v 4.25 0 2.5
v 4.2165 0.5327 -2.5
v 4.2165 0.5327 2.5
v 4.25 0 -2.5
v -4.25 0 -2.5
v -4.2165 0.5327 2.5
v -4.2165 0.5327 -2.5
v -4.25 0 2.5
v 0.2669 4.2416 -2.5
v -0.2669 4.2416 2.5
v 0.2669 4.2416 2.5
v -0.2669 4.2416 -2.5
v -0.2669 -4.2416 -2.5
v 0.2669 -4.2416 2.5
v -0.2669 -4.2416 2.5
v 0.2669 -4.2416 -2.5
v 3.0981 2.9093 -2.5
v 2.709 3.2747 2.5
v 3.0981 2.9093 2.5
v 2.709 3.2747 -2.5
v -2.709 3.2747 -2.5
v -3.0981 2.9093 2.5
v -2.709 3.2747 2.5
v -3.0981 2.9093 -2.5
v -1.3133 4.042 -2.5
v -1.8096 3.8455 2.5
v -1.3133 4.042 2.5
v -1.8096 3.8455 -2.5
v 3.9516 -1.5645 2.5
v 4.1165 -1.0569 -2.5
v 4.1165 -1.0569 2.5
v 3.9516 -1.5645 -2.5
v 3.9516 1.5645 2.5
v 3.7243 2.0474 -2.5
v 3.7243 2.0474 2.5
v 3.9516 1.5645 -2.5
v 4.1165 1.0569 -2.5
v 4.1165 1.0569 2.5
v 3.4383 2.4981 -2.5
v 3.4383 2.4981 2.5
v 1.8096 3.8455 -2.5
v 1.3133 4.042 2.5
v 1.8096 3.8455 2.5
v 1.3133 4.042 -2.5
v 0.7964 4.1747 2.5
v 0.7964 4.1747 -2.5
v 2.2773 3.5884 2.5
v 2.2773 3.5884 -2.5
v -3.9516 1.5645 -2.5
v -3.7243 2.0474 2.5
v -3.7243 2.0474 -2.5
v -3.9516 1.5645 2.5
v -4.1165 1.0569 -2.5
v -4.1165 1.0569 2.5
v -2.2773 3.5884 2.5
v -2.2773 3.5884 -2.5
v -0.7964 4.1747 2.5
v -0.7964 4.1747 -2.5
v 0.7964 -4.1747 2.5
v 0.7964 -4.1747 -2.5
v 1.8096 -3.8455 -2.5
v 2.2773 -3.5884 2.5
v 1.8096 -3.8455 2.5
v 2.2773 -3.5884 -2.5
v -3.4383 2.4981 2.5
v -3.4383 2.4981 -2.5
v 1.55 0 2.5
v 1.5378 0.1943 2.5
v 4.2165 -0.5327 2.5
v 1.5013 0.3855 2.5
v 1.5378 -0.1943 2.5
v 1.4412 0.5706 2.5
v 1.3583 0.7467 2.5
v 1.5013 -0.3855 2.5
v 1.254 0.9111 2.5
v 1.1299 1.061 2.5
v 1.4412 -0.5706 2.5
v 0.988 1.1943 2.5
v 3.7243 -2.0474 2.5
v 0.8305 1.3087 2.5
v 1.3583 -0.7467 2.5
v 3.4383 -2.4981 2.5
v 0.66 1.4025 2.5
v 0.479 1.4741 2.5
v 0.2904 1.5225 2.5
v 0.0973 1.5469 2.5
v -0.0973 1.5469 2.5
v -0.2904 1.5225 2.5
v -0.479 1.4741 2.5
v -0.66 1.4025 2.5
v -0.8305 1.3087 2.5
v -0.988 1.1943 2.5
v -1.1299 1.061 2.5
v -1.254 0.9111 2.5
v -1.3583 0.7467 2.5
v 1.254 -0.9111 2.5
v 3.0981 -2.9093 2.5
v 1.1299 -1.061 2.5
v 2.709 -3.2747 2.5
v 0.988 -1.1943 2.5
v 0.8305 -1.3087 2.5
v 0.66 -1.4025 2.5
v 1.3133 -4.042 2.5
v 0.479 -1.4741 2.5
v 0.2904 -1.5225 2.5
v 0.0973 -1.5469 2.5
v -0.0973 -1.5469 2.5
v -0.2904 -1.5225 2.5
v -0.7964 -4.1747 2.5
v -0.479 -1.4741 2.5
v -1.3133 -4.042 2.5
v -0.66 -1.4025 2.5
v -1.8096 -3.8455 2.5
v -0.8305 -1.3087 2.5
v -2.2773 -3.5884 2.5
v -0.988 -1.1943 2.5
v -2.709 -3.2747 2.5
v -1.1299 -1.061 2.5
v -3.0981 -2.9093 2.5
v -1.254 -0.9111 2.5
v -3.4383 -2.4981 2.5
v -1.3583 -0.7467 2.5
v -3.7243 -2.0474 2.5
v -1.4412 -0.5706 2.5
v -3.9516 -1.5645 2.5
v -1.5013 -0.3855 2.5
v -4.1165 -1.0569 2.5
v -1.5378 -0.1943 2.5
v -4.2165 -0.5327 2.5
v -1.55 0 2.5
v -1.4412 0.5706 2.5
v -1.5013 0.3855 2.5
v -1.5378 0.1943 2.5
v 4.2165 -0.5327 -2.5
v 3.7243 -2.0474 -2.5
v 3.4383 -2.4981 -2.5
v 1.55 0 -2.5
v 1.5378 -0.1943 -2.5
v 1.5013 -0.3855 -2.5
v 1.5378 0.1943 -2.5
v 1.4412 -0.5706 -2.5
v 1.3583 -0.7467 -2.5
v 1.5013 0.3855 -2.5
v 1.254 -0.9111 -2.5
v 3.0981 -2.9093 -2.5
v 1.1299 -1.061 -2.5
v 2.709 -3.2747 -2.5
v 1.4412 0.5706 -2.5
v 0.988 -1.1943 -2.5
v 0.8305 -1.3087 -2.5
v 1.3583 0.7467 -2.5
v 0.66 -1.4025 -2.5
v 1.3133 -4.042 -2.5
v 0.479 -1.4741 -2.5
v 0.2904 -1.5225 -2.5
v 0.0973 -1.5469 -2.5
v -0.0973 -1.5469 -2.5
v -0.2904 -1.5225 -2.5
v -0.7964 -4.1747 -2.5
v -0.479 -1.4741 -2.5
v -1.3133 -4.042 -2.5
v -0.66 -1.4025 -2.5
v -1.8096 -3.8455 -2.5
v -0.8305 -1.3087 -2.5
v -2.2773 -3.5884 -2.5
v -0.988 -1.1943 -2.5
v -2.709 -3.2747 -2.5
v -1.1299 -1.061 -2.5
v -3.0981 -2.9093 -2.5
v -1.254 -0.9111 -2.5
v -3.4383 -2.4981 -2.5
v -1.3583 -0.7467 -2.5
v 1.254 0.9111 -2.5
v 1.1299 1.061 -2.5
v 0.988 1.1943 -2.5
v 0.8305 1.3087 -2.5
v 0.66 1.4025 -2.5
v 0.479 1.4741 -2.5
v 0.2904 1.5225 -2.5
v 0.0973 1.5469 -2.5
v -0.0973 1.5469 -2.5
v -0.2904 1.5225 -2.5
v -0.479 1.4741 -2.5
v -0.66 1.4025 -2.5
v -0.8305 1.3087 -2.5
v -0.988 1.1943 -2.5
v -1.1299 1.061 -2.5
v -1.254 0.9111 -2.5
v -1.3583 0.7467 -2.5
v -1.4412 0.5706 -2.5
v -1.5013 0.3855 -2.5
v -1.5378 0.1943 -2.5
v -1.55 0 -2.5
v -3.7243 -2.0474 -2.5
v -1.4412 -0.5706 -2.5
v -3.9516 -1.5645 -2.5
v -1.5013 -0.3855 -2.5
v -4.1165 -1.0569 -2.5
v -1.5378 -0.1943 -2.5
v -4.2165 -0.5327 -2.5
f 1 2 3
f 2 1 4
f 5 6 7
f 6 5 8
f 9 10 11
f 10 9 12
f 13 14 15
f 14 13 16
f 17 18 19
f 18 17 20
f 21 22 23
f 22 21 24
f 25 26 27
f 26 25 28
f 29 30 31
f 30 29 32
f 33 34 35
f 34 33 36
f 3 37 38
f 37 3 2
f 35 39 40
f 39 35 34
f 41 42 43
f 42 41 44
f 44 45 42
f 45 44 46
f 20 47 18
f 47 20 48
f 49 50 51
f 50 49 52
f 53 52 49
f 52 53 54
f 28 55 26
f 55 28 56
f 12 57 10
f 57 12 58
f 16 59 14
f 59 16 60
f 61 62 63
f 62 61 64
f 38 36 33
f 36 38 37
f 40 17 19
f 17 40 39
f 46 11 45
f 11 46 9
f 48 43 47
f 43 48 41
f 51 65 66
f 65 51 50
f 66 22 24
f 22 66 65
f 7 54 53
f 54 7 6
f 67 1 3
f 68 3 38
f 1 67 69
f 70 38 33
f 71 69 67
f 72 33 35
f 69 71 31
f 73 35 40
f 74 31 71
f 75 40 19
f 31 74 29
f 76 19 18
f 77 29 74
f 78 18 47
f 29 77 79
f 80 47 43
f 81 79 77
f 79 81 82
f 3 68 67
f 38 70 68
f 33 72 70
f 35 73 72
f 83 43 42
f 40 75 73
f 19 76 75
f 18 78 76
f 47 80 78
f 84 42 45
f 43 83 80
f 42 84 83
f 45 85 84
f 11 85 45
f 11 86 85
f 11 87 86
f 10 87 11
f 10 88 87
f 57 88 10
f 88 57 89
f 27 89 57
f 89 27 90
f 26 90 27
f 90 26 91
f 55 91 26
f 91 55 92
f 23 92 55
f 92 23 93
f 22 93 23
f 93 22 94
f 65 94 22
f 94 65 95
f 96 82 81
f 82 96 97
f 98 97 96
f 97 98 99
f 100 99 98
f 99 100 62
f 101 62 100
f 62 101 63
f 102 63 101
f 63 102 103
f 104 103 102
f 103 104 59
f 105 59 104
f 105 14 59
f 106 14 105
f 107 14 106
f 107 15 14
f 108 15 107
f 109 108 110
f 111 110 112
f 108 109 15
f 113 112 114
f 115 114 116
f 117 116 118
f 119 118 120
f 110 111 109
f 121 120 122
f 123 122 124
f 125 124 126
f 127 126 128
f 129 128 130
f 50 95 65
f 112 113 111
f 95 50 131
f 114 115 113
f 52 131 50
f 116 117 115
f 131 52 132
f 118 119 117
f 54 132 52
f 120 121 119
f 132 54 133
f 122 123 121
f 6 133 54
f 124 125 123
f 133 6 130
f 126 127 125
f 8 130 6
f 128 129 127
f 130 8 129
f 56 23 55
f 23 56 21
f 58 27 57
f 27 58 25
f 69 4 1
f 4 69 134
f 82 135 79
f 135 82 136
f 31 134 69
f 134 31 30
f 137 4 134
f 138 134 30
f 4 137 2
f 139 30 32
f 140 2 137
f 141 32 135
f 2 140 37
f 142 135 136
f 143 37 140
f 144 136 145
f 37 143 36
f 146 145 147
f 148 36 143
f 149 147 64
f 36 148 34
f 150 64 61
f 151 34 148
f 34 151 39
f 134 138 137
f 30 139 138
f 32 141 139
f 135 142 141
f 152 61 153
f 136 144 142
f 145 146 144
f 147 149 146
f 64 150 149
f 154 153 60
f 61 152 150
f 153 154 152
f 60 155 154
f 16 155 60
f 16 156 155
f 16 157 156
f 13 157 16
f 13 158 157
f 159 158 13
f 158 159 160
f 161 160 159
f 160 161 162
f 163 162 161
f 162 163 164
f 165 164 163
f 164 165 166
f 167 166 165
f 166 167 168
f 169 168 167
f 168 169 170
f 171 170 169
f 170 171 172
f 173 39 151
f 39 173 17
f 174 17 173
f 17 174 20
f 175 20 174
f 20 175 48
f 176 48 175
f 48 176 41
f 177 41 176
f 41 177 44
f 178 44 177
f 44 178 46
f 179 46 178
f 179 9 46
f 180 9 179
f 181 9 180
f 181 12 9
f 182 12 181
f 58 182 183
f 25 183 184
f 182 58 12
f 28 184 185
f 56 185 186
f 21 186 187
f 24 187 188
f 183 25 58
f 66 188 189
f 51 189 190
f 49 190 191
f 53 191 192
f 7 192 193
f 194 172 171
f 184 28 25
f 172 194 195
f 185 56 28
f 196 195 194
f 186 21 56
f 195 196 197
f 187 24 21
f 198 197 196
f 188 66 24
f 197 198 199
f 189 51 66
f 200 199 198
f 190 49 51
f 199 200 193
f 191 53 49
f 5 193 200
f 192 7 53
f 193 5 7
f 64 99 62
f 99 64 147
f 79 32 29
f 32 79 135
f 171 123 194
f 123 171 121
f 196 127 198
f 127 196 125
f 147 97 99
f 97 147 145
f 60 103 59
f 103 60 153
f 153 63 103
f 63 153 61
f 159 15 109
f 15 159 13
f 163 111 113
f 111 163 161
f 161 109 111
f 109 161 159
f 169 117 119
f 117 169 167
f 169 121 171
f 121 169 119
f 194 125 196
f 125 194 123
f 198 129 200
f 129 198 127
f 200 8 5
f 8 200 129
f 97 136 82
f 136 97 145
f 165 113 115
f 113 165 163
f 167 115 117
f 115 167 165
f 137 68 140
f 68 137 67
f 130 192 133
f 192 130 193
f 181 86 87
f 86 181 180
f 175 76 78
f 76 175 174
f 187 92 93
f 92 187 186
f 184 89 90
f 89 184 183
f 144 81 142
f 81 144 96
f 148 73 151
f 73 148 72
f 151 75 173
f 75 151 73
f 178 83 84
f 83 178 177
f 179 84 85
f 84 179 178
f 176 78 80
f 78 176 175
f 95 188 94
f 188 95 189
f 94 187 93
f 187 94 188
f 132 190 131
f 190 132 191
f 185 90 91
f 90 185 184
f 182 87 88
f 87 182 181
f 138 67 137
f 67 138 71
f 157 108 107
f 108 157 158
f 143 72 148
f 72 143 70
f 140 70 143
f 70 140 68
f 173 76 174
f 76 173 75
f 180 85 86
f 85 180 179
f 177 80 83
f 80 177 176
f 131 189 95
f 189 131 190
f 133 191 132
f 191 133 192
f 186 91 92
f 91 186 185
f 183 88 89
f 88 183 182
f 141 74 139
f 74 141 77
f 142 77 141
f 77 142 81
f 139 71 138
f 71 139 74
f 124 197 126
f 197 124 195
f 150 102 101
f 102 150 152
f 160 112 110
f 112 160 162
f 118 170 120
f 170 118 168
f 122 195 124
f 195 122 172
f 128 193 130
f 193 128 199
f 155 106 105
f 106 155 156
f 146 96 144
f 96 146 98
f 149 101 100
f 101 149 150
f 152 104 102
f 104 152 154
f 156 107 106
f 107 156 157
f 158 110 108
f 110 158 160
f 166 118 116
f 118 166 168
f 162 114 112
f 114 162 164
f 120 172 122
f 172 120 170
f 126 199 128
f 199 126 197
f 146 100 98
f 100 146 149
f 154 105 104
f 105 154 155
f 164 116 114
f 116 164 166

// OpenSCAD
$fn = 50;


difference() {
	union() {
		translate(v = [0, 0, -2.5000000000]) {
			cylinder(h = 5, r = 4.2500000000);
		}
	}
	union() {
		translate(v = [0, 0, -100.0000000000]) {
			cylinder(h = 200, r = 1.5500000000);
		}
	}
}
